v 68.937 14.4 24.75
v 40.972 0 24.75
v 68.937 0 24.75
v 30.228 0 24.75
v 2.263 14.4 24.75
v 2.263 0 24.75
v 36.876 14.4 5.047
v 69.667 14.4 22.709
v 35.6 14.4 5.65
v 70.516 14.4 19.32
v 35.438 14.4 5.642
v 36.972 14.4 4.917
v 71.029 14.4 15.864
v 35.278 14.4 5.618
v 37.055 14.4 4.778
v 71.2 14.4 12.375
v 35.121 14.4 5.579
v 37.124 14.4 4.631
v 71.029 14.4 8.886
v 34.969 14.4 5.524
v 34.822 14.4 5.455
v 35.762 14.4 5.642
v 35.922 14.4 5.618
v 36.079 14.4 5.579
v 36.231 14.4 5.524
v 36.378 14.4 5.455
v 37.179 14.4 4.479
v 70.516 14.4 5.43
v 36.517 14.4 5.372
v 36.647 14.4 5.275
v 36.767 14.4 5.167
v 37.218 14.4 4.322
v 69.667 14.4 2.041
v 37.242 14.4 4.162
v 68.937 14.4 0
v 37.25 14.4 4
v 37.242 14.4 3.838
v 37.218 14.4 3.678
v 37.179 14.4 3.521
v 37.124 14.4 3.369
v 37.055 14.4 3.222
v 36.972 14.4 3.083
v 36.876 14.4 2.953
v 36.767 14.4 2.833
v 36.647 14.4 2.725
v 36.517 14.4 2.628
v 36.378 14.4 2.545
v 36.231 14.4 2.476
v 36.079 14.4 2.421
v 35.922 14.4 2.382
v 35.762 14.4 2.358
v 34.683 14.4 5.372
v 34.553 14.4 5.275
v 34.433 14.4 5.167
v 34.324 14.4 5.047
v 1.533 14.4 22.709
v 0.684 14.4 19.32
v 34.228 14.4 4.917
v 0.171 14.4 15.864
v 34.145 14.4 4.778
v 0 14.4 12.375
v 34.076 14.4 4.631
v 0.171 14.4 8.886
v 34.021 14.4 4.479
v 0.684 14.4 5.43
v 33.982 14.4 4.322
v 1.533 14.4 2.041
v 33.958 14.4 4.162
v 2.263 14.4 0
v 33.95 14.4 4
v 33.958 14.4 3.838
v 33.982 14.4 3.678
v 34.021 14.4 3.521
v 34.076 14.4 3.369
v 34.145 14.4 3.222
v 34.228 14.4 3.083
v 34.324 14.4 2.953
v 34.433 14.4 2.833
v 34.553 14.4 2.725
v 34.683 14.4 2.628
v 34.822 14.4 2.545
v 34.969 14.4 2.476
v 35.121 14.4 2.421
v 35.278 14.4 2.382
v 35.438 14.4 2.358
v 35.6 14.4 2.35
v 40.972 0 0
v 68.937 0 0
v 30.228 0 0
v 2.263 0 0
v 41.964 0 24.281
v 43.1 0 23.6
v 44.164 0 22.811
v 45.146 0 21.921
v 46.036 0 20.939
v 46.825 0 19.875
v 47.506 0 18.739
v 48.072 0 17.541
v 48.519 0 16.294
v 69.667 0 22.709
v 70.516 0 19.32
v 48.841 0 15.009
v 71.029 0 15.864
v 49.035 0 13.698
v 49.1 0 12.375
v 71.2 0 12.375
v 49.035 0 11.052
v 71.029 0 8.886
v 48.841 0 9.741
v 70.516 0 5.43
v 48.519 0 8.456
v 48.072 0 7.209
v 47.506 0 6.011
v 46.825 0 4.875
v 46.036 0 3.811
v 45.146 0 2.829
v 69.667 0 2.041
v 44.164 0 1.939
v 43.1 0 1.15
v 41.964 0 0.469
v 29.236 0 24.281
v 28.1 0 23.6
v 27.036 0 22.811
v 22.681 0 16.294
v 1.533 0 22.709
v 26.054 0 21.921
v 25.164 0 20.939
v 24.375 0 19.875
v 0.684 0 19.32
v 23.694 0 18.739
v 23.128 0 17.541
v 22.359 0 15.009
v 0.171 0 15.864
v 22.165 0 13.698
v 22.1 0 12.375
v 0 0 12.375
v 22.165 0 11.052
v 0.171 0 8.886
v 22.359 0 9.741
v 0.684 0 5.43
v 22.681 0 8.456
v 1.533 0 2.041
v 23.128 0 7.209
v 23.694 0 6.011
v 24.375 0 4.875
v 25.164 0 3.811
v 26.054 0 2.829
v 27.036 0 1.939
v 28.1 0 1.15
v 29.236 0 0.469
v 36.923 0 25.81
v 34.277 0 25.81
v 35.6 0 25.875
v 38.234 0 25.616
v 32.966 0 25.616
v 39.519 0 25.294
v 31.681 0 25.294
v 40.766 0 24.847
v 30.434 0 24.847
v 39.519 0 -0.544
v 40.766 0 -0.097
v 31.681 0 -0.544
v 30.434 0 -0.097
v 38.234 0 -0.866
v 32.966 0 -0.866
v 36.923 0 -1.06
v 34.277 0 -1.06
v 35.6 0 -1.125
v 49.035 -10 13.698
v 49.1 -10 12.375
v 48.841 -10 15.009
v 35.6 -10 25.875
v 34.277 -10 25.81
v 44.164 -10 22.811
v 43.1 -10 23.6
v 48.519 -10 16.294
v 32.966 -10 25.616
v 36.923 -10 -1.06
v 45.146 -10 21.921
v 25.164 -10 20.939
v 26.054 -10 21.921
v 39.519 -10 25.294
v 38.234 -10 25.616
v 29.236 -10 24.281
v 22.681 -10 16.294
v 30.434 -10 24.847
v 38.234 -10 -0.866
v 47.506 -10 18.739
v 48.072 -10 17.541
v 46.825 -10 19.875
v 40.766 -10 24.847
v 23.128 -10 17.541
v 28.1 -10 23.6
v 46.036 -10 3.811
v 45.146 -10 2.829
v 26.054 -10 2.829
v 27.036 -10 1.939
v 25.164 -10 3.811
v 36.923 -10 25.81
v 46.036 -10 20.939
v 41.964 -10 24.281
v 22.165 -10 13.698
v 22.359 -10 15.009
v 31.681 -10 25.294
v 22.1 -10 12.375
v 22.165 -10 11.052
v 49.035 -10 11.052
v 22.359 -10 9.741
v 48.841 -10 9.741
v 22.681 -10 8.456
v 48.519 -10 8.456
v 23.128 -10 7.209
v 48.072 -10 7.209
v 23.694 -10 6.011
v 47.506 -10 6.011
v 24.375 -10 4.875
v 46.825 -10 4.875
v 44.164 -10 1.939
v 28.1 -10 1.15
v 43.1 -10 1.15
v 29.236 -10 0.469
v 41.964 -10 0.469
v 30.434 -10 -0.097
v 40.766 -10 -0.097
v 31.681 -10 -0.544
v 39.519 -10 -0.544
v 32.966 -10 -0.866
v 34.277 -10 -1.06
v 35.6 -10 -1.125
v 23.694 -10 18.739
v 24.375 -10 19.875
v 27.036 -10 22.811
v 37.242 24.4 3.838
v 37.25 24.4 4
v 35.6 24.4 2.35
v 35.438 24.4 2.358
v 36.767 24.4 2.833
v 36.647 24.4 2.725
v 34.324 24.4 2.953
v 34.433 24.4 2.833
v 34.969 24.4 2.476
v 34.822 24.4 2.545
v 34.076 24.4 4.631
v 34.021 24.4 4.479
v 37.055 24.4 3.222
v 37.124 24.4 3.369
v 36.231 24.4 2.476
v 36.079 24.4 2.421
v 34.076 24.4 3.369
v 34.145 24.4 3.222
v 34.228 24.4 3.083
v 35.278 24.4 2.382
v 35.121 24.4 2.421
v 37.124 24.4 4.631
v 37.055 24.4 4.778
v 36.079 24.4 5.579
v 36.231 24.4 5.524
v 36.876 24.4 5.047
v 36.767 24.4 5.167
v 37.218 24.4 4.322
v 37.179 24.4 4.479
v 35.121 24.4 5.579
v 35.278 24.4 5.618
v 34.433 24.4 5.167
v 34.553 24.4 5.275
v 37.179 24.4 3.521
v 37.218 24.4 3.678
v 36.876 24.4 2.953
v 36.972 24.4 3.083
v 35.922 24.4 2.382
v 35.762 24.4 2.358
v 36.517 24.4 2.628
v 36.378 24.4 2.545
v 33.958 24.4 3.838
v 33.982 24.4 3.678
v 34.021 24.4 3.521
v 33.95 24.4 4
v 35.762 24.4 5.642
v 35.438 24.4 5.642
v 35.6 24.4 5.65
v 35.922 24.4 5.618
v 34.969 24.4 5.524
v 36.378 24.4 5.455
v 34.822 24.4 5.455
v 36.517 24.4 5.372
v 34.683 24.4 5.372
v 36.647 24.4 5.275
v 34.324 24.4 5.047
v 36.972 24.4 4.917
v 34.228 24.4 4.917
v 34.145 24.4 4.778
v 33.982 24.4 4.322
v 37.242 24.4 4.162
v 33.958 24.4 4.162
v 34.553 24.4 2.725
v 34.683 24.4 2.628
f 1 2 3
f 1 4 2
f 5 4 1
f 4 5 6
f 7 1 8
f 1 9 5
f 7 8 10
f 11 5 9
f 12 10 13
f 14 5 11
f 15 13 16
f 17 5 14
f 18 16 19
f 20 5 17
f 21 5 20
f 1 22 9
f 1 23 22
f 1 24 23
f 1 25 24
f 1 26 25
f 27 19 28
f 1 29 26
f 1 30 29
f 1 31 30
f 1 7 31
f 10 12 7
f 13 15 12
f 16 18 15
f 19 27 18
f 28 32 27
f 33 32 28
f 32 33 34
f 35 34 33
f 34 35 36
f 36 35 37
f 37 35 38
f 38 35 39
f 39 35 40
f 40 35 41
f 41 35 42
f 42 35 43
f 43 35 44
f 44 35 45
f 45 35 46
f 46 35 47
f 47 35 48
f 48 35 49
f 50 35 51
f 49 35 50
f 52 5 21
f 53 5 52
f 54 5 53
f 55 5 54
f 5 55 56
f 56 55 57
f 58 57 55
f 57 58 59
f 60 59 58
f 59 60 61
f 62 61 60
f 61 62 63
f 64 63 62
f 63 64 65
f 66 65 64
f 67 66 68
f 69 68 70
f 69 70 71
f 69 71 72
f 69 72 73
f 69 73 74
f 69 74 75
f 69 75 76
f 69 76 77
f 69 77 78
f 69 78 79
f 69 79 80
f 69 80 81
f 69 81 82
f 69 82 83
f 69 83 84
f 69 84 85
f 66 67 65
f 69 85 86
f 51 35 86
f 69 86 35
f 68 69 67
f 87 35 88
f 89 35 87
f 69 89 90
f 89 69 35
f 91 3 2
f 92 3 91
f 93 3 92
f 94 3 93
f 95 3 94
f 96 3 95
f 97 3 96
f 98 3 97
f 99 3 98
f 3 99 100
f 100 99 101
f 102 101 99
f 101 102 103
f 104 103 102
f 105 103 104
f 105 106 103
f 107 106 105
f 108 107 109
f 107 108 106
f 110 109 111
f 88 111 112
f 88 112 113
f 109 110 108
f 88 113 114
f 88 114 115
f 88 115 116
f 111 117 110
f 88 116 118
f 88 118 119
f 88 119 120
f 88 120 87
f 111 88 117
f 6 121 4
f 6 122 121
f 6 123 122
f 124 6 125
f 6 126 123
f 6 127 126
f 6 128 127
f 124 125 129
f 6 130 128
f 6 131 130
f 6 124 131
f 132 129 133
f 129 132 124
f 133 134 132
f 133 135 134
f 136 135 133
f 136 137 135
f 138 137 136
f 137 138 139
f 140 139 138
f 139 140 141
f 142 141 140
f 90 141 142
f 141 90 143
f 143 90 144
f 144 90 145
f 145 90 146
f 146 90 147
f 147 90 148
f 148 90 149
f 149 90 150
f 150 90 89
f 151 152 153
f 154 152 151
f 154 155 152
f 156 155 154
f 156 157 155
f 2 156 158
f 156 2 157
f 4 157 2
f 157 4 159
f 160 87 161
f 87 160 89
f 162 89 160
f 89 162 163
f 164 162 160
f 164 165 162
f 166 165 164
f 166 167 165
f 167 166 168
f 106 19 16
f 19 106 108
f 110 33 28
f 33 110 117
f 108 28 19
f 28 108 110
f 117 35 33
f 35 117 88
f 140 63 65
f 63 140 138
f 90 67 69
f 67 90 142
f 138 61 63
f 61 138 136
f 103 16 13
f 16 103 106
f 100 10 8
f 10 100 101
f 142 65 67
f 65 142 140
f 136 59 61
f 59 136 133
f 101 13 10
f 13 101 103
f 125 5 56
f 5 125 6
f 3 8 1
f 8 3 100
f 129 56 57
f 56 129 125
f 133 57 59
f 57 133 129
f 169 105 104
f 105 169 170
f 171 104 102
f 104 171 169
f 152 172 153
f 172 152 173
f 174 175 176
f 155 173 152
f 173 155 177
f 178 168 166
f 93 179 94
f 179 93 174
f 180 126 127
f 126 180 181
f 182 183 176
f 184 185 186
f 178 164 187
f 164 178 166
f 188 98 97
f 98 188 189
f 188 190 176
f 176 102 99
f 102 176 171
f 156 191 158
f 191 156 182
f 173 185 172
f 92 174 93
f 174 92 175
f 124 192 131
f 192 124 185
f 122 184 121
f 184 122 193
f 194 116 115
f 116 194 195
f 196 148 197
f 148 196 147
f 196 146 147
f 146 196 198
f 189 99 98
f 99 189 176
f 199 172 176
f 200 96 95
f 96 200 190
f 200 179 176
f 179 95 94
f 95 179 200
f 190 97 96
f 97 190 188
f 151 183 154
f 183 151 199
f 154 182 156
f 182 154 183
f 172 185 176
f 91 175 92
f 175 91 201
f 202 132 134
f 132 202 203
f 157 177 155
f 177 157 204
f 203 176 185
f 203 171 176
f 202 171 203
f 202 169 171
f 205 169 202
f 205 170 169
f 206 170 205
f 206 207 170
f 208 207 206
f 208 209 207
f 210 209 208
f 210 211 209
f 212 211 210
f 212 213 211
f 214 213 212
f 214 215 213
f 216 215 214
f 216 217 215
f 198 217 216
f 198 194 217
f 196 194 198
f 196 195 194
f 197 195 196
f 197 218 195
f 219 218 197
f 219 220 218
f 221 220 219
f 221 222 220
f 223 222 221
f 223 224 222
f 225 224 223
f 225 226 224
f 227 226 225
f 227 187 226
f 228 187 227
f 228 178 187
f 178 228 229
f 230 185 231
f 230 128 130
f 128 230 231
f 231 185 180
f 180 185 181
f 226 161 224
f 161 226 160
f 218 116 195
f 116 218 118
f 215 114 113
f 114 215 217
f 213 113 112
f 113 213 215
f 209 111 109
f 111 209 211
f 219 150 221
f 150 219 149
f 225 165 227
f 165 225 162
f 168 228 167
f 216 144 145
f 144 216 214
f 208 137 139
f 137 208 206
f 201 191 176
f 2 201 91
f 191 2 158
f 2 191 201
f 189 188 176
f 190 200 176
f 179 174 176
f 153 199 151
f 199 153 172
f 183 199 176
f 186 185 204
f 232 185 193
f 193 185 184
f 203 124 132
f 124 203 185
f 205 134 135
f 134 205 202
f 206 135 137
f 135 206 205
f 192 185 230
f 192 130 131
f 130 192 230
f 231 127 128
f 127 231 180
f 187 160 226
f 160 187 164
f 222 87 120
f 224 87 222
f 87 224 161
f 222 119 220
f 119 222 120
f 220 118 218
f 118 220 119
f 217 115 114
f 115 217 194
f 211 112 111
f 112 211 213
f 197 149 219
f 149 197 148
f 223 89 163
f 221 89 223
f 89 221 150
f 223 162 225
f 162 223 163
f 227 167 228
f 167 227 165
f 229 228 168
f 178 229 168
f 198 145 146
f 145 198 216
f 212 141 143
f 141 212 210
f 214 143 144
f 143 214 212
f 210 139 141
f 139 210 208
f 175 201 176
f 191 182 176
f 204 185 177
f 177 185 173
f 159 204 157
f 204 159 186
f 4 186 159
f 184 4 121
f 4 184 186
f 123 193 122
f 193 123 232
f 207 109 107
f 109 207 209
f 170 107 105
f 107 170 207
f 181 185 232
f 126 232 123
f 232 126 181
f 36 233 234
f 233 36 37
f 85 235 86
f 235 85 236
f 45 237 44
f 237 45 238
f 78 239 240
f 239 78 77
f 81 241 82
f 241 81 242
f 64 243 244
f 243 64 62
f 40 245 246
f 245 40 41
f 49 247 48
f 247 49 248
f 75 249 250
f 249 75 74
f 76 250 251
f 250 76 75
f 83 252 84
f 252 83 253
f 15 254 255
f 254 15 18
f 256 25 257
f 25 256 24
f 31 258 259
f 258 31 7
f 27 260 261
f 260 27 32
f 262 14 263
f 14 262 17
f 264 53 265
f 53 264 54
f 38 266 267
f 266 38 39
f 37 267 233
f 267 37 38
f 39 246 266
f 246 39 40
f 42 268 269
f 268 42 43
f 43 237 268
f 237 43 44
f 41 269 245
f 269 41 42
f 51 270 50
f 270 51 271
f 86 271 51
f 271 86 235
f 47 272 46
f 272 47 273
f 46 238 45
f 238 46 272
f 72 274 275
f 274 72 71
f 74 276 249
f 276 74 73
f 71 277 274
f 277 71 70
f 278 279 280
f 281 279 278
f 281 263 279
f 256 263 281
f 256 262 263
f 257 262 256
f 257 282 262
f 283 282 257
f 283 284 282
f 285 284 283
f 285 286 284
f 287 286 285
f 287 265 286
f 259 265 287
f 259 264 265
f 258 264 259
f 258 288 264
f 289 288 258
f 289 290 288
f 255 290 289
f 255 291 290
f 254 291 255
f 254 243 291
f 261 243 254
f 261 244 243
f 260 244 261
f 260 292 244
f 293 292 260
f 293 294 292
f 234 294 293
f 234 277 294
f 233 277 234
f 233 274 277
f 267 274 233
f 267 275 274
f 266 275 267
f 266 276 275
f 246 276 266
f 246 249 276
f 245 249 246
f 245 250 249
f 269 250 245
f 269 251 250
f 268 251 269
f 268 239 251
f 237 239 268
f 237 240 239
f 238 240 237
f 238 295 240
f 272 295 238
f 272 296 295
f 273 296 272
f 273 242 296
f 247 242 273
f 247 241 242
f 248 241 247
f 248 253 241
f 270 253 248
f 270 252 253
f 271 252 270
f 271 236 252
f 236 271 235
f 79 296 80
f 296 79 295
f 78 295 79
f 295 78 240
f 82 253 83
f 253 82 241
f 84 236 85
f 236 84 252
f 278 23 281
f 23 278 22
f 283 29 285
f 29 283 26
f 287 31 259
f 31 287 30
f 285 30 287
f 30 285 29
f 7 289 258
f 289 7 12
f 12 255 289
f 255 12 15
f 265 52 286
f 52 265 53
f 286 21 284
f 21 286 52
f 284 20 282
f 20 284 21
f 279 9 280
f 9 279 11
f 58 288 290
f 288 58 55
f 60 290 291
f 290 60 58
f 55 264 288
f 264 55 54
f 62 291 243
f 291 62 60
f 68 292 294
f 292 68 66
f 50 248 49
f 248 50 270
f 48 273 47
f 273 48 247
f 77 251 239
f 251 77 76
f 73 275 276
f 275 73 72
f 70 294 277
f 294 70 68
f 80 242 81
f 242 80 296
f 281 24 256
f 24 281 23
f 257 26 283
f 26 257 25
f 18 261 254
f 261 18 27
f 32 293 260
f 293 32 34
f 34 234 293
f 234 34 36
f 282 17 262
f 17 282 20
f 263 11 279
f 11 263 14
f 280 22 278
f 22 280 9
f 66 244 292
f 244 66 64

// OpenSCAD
// A toggle switch ordered from https://www.sparkfun.com/products/11310
// Part of http://vor.space
// ©Futurice Oy, paul.houghton@futurice.com, CC-attribution-sharealike license, http://creativecommons.org/licenses/by-sa/4.0/

$fn = 64;

length = 71.2;
width = 14.4;
height = 24.75;

creative_hd();

module camera() {
    intersection() {
        cube([length, width, height]);        
        translate([length/2, 0, height/2]) rotate([-90, 0, 0]) {
            cylinder(h = width, r = length/2);
        }
    }
}

module lens() {
    translate([length/2, 0, height/2]) rotate([90, 0, 0]) {
        cylinder(h = 10, r = 27/2);
    }
}

module cable() {
    translate([length/2, width, 4]) rotate([-90, 0, 0]) {
        cylinder(h = 10, r = 3.3/2);
    }
}

module creative_hd() {
    color("dimgrey") camera();
    color("lightgrey") lens();
    color("black") cable();
}
    
